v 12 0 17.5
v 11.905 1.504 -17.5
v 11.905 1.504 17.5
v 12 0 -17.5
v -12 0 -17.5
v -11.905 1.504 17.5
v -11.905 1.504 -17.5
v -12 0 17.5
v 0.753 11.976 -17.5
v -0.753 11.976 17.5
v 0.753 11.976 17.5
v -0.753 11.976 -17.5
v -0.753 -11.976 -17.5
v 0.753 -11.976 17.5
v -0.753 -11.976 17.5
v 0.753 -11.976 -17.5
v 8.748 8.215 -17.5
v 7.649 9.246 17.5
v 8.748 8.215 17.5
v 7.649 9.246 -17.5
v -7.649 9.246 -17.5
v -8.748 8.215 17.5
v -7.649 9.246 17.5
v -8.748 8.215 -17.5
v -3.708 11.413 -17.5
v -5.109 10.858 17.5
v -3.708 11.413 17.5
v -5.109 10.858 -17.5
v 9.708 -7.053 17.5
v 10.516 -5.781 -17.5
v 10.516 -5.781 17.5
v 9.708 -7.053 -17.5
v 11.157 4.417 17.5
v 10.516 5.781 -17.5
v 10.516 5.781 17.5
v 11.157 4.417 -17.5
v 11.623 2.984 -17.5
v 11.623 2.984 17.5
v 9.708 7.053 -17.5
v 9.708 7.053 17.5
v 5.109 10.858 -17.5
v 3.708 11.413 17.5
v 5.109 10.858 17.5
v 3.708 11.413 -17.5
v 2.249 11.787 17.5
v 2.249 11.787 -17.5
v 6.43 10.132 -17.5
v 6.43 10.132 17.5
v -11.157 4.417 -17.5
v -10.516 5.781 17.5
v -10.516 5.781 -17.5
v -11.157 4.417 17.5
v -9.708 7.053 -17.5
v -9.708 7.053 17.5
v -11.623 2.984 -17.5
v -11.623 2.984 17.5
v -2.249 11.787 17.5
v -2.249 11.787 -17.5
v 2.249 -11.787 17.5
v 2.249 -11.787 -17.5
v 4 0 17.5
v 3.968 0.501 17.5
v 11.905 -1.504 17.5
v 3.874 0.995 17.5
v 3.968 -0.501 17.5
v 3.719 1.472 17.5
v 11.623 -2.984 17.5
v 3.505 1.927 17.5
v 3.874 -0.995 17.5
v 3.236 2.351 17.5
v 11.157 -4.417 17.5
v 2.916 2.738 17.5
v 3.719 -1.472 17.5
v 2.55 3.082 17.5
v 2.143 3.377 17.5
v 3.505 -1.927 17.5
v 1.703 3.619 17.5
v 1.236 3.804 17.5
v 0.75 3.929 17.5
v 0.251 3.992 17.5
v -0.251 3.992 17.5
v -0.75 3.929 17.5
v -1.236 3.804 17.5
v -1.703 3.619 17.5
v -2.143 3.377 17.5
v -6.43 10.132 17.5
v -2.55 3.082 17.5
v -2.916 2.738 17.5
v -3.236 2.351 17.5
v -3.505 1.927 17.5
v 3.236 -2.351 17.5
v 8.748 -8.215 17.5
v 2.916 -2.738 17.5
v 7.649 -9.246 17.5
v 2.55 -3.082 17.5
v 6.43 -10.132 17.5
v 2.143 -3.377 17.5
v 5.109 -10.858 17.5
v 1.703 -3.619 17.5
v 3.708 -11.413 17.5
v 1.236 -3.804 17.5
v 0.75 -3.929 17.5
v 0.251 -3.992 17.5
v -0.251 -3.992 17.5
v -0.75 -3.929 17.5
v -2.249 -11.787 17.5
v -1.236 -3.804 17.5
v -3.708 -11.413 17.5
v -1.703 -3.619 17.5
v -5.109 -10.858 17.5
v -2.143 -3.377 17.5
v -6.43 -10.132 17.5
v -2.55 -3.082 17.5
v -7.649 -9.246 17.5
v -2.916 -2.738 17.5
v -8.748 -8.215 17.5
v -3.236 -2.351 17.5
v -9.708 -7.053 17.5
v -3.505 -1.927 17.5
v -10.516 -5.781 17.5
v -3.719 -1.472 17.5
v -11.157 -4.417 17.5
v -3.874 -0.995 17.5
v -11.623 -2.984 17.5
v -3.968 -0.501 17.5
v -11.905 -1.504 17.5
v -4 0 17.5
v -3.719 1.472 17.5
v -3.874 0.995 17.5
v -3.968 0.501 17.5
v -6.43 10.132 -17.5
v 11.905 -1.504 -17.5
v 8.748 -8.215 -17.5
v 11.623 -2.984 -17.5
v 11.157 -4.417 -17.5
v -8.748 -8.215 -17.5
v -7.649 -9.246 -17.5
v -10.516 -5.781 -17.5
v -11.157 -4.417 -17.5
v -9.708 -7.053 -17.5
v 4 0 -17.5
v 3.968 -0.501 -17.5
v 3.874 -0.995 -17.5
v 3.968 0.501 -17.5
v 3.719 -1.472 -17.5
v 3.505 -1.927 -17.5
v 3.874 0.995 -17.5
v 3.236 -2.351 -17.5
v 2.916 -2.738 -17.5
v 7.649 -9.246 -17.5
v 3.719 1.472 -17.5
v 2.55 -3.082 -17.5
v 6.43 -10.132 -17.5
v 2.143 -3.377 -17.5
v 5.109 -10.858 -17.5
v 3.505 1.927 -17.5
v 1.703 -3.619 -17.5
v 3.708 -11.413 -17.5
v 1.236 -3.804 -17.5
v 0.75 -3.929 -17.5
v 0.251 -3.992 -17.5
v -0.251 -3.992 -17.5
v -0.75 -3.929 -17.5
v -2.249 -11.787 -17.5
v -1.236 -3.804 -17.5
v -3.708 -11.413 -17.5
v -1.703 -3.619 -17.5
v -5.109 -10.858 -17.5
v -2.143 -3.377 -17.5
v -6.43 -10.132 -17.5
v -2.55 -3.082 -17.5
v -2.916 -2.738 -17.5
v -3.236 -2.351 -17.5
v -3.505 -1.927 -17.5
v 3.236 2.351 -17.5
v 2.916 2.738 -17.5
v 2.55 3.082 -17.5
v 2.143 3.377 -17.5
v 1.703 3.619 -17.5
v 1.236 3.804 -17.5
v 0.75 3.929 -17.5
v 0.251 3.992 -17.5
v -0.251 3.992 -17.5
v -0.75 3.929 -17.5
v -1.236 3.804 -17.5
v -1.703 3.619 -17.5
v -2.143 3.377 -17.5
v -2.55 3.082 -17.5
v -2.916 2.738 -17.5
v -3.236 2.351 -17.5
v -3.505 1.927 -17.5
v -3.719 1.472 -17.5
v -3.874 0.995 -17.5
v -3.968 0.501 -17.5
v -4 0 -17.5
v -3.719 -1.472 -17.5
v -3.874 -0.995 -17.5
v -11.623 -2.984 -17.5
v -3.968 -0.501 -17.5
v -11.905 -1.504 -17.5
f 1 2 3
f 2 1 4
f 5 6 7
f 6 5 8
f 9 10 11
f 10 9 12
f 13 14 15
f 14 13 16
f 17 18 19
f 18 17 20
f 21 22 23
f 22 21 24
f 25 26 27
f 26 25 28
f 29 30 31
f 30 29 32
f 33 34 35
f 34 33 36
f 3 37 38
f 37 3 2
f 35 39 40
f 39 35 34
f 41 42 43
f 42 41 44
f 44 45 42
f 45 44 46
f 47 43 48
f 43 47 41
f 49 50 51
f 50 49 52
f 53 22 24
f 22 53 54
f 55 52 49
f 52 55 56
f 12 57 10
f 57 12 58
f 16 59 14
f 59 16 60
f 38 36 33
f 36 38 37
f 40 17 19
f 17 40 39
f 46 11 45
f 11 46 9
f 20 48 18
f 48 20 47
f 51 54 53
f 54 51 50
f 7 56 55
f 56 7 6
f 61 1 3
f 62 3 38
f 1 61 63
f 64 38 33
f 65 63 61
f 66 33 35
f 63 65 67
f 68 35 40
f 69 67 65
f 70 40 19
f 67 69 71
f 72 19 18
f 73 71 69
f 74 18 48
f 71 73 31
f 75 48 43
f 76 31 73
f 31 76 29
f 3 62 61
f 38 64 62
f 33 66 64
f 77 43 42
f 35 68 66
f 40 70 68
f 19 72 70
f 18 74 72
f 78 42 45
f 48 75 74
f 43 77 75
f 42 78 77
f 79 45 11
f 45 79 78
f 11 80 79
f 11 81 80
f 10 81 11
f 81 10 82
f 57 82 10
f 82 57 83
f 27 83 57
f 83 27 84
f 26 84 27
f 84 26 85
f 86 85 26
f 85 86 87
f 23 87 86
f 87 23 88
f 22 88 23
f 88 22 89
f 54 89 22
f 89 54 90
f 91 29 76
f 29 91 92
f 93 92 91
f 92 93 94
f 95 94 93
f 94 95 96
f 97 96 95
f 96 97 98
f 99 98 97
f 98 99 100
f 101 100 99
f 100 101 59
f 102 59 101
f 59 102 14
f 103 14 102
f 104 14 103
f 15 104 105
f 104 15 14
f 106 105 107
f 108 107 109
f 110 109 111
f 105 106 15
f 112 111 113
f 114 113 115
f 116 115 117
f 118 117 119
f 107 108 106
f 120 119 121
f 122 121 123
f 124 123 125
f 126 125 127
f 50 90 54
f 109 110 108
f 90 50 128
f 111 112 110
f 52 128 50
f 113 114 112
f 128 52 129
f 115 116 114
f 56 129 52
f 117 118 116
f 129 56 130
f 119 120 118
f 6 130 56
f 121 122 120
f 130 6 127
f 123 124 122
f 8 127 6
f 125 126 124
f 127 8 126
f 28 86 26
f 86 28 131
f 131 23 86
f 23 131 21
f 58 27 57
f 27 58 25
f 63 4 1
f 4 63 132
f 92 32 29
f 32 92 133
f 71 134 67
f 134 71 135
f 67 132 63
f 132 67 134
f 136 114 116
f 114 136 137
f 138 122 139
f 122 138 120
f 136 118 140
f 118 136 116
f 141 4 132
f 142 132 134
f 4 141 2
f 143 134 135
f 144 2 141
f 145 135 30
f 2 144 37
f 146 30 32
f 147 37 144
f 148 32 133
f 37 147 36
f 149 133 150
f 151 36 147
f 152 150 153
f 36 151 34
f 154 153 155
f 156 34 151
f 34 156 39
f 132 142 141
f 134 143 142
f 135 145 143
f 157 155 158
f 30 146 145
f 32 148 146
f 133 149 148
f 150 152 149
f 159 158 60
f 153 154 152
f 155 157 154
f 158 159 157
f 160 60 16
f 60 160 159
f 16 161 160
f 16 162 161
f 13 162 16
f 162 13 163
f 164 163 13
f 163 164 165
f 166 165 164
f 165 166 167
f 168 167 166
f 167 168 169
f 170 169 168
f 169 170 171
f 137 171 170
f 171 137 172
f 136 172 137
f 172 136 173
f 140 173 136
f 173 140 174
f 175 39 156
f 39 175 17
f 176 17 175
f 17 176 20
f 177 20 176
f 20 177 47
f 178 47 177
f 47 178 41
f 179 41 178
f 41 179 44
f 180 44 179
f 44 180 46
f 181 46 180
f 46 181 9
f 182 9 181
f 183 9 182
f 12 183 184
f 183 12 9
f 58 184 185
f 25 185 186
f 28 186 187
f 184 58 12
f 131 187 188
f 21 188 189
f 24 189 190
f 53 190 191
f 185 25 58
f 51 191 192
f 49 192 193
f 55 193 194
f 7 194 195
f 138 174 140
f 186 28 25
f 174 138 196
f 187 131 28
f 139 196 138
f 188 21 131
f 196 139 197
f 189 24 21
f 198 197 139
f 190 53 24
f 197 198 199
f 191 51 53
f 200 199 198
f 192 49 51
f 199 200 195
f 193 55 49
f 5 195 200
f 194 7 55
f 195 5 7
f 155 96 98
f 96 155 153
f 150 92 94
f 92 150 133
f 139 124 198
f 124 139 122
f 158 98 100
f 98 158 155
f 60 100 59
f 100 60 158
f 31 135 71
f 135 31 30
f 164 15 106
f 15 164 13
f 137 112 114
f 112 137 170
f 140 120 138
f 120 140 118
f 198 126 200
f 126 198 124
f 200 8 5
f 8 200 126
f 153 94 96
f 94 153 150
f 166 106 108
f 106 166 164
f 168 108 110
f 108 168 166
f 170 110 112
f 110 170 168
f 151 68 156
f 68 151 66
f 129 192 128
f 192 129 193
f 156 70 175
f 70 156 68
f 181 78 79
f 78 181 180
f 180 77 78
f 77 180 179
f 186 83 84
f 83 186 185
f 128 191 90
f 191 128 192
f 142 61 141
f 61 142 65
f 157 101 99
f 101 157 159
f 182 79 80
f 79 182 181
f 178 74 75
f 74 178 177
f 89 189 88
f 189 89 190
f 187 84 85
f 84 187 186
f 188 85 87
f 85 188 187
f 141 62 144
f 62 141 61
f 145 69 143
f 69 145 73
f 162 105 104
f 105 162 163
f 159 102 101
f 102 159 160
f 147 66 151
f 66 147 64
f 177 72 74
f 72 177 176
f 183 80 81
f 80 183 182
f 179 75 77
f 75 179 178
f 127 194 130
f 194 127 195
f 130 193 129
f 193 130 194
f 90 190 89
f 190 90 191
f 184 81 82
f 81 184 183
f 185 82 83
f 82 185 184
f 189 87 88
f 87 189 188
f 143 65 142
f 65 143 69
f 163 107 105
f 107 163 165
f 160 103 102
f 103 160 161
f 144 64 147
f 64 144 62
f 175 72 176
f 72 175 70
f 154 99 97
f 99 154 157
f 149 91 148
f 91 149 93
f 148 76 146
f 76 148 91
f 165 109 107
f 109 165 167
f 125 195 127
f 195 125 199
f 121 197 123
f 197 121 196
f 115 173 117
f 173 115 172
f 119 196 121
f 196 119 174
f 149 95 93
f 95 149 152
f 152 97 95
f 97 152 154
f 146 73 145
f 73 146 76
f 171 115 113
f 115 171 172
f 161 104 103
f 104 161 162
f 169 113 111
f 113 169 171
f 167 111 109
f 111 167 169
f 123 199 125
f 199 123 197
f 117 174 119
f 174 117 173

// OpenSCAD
$fn = 50;


difference() {
	union() {
		translate(v = [0, 0, -17.5000000000]) {
			cylinder(h = 35, r = 12.0000000000);
		}
	}
	union() {
		translate(v = [0, 0, -100.0000000000]) {
			cylinder(h = 200, r = 4);
		}
	}
}
